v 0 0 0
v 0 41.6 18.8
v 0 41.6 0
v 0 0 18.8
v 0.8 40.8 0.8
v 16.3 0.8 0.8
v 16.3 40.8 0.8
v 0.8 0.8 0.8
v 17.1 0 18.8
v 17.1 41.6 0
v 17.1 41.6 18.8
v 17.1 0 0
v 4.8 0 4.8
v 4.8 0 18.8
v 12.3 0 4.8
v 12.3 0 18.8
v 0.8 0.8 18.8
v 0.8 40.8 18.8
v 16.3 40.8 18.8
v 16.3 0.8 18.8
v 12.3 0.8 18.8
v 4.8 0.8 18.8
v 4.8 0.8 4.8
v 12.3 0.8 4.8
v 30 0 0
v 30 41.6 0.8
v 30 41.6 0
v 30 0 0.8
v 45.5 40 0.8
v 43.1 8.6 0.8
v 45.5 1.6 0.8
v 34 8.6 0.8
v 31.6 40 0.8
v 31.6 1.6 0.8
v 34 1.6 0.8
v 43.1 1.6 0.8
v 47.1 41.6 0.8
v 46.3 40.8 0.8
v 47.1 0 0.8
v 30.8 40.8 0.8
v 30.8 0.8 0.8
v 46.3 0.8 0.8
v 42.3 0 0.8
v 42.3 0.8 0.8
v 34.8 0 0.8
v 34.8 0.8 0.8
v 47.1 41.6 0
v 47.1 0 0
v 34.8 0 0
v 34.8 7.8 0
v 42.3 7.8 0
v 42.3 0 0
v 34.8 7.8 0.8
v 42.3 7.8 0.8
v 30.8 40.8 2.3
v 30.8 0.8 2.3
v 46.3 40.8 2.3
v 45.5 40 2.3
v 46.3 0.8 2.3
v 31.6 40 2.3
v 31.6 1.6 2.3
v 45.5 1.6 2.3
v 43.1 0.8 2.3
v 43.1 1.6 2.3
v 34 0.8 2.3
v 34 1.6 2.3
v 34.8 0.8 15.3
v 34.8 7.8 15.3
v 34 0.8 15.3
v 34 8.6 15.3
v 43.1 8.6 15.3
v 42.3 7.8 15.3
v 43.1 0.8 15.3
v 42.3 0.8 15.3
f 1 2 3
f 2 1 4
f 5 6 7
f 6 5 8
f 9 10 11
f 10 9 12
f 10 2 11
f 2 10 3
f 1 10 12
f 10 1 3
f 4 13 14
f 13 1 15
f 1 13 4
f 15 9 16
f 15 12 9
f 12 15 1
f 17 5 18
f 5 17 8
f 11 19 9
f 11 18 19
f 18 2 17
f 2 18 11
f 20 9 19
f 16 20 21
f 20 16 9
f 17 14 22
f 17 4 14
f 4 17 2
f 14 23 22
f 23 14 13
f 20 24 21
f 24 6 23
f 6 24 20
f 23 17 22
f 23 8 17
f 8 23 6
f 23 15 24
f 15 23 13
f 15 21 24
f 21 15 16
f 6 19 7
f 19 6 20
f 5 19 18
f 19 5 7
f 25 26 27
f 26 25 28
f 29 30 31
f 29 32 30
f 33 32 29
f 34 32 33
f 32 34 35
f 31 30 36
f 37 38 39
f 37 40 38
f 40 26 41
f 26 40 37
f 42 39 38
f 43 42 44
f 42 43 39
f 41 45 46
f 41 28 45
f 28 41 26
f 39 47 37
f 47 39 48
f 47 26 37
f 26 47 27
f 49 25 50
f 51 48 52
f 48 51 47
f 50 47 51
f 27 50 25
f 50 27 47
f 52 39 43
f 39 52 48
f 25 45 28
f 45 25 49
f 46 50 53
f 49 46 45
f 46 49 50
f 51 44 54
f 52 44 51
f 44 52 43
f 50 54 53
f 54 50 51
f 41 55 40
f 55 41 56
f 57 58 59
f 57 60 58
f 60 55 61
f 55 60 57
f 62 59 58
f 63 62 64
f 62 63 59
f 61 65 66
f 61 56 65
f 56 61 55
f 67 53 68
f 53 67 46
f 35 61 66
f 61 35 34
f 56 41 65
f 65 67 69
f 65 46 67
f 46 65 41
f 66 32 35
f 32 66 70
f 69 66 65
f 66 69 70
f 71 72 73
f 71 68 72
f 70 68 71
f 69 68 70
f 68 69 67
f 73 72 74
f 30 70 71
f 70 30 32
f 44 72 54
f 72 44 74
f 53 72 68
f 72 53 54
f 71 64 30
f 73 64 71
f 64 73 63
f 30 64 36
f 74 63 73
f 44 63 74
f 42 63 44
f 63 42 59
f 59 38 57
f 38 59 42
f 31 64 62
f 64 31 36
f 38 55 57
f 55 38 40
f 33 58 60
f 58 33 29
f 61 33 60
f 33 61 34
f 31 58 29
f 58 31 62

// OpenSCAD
box_size = [15.5, 40, 18];
wall_width = 0.8;
$fn = 36;

module box()
{
  /* Base */
  cube(box_size + [wall_width * 2, wall_width * 2, wall_width - box_size[2]]);
  /* Walls */
  translate([wall_width, 0, wall_width]) cube([4, wall_width, box_size[2]]);
  translate([wall_width + 4, 0, wall_width]) cube([box_size[0] - 8, wall_width, 4]);
  translate([wall_width + 4 + box_size[0] - 8, 0, wall_width]) cube([4, wall_width, box_size[2]]);
  translate([wall_width, box_size[1] + wall_width, wall_width]) cube([box_size[0], wall_width, box_size[2]]);
  translate([0, 0, wall_width]) cube([wall_width, box_size[1] + (2 * wall_width), box_size[2]]);
  translate([box_size[0] + wall_width, 0, wall_width]) cube([wall_width, box_size[1] + (2 * wall_width), box_size[2]]);
}

module cover()
{
  /* Base */
  difference()
  {
    cube(box_size + [wall_width * 2, wall_width * 2, wall_width - box_size[2]]);
    translate([wall_width + 4, 0, 0]) cube([box_size[0] - 8, wall_width + 7, wall_width]);
  }
  /* Walls */
  translate([wall_width, wall_width, wall_width]) cube([4, wall_width, 1.5]);
  translate([4, wall_width, wall_width]) cube([wall_width, 7 + wall_width, 14.5]);
  translate([wall_width + 4, wall_width + 7, wall_width]) cube([box_size[0] - 8, wall_width, 14.5]);
  translate([wall_width + box_size[0] - 4, wall_width, wall_width]) cube([wall_width, 7 + wall_width, 14.5]);
  translate([wall_width + box_size[0] - 4, wall_width, wall_width]) cube([4, wall_width, 1.5]);
  translate([wall_width, box_size[1], wall_width]) cube([box_size[0], wall_width, 1.5]);
  translate([wall_width, wall_width, wall_width]) cube([wall_width, box_size[1] - wall_width,  1.5]);
  translate([box_size[0], wall_width, wall_width]) cube([wall_width, box_size[1] - wall_width,  1.5]);
}

box();
translate([30, 0, 0])
//color("red") translate([box_size[0] + 2 * wall_width, 0, 1.6 + box_size[2]]) rotate([0, 180, 0])
cover();
